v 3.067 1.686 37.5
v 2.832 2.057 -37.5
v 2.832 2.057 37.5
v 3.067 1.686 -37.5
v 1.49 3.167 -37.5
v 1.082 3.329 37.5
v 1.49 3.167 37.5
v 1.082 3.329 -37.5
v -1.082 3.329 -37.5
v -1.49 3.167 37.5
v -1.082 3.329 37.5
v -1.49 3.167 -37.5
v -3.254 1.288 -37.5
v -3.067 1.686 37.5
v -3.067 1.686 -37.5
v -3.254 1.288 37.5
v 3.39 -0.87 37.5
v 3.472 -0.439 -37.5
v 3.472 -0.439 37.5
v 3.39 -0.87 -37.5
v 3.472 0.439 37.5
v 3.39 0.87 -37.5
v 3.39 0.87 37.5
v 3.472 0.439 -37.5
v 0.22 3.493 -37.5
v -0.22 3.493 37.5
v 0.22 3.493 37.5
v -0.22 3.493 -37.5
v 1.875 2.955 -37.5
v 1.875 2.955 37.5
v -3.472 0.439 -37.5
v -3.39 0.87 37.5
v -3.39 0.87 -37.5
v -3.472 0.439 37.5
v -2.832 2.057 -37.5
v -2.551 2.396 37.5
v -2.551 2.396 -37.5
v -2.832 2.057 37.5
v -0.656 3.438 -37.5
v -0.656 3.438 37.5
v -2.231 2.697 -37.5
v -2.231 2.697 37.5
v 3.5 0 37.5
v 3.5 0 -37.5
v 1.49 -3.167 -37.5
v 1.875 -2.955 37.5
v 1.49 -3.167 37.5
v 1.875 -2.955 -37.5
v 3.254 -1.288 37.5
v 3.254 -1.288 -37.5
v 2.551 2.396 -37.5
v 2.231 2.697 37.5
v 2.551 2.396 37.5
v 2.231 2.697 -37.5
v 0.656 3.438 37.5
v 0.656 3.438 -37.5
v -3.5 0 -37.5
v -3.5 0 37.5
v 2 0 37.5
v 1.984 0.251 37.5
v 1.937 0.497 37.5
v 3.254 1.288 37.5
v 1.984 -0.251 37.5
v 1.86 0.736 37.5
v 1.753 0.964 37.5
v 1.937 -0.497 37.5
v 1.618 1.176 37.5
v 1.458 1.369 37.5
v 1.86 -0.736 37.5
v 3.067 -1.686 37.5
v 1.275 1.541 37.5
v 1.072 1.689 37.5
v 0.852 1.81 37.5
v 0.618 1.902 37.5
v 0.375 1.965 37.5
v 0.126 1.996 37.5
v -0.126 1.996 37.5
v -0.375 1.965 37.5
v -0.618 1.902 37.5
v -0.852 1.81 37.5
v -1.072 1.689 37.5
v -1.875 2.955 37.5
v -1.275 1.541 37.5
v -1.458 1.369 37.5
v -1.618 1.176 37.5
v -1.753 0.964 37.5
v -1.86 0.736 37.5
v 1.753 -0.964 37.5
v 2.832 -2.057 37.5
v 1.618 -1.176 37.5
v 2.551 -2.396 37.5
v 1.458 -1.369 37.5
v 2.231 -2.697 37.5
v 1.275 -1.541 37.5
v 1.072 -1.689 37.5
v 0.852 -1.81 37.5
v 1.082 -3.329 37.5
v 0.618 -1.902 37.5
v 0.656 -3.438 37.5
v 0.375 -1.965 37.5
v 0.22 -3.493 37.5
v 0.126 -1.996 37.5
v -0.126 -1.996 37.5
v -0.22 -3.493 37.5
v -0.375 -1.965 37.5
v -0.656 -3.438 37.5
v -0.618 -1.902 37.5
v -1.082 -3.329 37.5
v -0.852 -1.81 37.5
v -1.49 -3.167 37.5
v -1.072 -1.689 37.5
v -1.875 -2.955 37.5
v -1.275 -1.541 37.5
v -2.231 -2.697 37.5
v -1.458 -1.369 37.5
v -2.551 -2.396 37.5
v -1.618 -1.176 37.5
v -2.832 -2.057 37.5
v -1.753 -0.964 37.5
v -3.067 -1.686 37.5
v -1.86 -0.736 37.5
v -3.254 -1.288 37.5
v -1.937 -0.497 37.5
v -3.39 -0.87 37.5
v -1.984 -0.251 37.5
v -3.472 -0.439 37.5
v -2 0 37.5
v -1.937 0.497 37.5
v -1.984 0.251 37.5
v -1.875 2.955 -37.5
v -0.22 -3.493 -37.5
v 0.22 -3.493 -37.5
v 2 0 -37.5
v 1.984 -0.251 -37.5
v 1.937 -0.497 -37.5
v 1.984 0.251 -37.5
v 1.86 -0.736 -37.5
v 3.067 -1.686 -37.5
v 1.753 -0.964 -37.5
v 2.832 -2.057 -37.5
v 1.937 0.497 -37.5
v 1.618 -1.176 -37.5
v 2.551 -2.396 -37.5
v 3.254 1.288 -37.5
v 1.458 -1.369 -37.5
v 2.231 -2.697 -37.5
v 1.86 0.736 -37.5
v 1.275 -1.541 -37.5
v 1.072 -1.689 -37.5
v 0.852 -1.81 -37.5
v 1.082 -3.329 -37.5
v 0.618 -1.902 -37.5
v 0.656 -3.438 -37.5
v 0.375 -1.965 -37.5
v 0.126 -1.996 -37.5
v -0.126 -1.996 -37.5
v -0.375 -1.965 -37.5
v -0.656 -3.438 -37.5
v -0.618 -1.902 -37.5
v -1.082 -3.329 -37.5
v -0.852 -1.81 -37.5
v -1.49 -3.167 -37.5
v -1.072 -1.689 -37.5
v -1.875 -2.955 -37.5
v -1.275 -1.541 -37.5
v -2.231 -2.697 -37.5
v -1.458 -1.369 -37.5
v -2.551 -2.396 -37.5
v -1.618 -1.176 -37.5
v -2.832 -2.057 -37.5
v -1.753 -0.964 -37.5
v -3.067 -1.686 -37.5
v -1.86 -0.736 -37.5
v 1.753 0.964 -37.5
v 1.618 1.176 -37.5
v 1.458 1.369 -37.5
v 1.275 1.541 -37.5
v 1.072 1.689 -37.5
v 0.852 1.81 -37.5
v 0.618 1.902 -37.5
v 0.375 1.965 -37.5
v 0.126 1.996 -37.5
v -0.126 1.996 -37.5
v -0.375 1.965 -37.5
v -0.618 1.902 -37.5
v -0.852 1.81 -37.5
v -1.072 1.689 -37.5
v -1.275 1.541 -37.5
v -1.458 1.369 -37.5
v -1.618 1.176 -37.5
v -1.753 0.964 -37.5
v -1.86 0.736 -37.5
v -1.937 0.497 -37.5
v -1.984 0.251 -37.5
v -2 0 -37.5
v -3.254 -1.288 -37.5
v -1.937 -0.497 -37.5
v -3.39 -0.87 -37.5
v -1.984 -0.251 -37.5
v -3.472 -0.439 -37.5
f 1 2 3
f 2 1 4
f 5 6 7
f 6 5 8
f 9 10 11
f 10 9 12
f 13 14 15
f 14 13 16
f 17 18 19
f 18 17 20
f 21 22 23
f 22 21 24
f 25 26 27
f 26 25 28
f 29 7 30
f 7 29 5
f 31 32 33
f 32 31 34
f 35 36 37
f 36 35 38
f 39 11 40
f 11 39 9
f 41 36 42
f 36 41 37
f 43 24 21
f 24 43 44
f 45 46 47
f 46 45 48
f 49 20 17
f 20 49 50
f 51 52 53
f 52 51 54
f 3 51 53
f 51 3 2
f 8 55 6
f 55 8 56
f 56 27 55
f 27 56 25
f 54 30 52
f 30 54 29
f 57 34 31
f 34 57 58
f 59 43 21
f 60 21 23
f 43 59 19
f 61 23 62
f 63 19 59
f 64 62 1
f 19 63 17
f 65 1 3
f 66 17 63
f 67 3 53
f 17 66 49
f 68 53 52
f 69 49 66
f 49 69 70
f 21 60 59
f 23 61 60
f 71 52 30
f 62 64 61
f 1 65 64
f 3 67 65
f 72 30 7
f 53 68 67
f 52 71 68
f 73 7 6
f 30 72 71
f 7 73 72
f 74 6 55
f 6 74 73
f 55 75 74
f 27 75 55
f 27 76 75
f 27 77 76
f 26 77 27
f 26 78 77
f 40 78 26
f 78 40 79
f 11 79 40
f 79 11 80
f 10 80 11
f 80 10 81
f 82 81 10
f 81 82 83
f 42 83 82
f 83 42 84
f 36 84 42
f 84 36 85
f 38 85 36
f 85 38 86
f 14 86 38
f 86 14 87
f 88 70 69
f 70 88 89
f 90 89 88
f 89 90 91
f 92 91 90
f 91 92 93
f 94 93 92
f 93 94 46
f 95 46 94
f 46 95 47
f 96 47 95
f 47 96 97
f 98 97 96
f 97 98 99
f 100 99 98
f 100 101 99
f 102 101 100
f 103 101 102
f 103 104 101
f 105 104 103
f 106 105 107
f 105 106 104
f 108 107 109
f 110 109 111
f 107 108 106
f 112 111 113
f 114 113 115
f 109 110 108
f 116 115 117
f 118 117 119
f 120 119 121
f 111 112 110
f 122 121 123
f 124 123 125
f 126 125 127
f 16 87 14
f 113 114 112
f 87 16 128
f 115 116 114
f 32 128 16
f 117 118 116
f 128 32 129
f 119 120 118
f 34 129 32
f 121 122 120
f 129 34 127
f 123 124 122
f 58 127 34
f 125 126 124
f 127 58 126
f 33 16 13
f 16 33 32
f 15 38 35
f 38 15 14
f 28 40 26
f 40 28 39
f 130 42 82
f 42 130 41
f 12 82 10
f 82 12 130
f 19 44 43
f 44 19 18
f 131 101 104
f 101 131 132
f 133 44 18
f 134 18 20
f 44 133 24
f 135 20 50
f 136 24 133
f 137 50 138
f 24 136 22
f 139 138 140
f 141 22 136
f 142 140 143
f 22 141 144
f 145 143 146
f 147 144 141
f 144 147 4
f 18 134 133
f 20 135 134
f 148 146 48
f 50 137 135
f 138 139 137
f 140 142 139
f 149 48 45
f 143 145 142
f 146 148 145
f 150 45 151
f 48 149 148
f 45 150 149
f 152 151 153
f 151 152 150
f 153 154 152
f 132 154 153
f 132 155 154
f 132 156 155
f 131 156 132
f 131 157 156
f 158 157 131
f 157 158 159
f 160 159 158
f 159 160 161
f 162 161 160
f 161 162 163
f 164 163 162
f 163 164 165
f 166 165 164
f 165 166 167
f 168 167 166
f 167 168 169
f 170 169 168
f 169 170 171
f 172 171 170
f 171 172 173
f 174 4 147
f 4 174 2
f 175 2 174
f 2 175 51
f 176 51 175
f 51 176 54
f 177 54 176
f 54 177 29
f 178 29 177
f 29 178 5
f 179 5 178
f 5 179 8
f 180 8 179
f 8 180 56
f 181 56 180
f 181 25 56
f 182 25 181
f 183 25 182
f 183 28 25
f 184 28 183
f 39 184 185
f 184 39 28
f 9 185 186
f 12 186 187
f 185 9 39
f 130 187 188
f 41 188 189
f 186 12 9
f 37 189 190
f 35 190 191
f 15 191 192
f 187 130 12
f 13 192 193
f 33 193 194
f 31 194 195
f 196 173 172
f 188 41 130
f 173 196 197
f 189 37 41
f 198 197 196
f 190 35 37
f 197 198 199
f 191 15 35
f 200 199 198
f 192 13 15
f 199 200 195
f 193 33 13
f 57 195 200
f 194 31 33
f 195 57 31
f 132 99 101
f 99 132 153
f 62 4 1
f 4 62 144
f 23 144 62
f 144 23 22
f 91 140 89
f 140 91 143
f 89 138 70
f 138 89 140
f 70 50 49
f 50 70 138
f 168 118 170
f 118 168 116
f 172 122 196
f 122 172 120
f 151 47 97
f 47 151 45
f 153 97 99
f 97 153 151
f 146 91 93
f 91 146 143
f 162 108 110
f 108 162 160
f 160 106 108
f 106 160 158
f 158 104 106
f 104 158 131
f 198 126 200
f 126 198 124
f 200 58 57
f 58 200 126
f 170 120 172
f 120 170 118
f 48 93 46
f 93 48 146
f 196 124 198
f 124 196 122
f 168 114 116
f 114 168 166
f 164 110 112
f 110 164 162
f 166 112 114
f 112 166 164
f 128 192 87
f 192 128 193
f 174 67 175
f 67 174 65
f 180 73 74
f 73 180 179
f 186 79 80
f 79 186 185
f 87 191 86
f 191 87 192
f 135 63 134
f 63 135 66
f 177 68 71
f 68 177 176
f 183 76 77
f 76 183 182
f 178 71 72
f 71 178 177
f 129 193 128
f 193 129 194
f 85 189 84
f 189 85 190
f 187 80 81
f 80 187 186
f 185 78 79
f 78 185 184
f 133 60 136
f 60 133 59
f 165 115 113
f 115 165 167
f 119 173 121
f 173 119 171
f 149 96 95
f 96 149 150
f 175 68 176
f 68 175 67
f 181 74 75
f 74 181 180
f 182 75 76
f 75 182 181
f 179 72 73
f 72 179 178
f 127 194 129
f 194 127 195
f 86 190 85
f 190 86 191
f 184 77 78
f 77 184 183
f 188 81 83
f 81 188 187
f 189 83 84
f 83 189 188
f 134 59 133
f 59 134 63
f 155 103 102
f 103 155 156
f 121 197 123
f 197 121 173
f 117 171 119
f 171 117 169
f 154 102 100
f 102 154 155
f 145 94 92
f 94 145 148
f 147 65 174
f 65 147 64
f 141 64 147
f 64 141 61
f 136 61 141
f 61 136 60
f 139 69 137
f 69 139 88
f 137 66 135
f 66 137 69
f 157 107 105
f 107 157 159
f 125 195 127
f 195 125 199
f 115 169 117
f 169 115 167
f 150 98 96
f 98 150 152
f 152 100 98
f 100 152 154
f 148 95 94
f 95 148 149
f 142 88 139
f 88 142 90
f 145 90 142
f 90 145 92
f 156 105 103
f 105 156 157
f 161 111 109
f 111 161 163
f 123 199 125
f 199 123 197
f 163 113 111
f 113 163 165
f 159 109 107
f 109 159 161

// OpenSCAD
$fn = 50;


difference() {
	union() {
		translate(v = [0, 0, -37.5000000000]) {
			cylinder(h = 75, r = 3.5000000000);
		}
	}
	union() {
		translate(v = [0, 0, -100.0000000000]) {
			cylinder(h = 200, r = 2);
		}
	}
}
